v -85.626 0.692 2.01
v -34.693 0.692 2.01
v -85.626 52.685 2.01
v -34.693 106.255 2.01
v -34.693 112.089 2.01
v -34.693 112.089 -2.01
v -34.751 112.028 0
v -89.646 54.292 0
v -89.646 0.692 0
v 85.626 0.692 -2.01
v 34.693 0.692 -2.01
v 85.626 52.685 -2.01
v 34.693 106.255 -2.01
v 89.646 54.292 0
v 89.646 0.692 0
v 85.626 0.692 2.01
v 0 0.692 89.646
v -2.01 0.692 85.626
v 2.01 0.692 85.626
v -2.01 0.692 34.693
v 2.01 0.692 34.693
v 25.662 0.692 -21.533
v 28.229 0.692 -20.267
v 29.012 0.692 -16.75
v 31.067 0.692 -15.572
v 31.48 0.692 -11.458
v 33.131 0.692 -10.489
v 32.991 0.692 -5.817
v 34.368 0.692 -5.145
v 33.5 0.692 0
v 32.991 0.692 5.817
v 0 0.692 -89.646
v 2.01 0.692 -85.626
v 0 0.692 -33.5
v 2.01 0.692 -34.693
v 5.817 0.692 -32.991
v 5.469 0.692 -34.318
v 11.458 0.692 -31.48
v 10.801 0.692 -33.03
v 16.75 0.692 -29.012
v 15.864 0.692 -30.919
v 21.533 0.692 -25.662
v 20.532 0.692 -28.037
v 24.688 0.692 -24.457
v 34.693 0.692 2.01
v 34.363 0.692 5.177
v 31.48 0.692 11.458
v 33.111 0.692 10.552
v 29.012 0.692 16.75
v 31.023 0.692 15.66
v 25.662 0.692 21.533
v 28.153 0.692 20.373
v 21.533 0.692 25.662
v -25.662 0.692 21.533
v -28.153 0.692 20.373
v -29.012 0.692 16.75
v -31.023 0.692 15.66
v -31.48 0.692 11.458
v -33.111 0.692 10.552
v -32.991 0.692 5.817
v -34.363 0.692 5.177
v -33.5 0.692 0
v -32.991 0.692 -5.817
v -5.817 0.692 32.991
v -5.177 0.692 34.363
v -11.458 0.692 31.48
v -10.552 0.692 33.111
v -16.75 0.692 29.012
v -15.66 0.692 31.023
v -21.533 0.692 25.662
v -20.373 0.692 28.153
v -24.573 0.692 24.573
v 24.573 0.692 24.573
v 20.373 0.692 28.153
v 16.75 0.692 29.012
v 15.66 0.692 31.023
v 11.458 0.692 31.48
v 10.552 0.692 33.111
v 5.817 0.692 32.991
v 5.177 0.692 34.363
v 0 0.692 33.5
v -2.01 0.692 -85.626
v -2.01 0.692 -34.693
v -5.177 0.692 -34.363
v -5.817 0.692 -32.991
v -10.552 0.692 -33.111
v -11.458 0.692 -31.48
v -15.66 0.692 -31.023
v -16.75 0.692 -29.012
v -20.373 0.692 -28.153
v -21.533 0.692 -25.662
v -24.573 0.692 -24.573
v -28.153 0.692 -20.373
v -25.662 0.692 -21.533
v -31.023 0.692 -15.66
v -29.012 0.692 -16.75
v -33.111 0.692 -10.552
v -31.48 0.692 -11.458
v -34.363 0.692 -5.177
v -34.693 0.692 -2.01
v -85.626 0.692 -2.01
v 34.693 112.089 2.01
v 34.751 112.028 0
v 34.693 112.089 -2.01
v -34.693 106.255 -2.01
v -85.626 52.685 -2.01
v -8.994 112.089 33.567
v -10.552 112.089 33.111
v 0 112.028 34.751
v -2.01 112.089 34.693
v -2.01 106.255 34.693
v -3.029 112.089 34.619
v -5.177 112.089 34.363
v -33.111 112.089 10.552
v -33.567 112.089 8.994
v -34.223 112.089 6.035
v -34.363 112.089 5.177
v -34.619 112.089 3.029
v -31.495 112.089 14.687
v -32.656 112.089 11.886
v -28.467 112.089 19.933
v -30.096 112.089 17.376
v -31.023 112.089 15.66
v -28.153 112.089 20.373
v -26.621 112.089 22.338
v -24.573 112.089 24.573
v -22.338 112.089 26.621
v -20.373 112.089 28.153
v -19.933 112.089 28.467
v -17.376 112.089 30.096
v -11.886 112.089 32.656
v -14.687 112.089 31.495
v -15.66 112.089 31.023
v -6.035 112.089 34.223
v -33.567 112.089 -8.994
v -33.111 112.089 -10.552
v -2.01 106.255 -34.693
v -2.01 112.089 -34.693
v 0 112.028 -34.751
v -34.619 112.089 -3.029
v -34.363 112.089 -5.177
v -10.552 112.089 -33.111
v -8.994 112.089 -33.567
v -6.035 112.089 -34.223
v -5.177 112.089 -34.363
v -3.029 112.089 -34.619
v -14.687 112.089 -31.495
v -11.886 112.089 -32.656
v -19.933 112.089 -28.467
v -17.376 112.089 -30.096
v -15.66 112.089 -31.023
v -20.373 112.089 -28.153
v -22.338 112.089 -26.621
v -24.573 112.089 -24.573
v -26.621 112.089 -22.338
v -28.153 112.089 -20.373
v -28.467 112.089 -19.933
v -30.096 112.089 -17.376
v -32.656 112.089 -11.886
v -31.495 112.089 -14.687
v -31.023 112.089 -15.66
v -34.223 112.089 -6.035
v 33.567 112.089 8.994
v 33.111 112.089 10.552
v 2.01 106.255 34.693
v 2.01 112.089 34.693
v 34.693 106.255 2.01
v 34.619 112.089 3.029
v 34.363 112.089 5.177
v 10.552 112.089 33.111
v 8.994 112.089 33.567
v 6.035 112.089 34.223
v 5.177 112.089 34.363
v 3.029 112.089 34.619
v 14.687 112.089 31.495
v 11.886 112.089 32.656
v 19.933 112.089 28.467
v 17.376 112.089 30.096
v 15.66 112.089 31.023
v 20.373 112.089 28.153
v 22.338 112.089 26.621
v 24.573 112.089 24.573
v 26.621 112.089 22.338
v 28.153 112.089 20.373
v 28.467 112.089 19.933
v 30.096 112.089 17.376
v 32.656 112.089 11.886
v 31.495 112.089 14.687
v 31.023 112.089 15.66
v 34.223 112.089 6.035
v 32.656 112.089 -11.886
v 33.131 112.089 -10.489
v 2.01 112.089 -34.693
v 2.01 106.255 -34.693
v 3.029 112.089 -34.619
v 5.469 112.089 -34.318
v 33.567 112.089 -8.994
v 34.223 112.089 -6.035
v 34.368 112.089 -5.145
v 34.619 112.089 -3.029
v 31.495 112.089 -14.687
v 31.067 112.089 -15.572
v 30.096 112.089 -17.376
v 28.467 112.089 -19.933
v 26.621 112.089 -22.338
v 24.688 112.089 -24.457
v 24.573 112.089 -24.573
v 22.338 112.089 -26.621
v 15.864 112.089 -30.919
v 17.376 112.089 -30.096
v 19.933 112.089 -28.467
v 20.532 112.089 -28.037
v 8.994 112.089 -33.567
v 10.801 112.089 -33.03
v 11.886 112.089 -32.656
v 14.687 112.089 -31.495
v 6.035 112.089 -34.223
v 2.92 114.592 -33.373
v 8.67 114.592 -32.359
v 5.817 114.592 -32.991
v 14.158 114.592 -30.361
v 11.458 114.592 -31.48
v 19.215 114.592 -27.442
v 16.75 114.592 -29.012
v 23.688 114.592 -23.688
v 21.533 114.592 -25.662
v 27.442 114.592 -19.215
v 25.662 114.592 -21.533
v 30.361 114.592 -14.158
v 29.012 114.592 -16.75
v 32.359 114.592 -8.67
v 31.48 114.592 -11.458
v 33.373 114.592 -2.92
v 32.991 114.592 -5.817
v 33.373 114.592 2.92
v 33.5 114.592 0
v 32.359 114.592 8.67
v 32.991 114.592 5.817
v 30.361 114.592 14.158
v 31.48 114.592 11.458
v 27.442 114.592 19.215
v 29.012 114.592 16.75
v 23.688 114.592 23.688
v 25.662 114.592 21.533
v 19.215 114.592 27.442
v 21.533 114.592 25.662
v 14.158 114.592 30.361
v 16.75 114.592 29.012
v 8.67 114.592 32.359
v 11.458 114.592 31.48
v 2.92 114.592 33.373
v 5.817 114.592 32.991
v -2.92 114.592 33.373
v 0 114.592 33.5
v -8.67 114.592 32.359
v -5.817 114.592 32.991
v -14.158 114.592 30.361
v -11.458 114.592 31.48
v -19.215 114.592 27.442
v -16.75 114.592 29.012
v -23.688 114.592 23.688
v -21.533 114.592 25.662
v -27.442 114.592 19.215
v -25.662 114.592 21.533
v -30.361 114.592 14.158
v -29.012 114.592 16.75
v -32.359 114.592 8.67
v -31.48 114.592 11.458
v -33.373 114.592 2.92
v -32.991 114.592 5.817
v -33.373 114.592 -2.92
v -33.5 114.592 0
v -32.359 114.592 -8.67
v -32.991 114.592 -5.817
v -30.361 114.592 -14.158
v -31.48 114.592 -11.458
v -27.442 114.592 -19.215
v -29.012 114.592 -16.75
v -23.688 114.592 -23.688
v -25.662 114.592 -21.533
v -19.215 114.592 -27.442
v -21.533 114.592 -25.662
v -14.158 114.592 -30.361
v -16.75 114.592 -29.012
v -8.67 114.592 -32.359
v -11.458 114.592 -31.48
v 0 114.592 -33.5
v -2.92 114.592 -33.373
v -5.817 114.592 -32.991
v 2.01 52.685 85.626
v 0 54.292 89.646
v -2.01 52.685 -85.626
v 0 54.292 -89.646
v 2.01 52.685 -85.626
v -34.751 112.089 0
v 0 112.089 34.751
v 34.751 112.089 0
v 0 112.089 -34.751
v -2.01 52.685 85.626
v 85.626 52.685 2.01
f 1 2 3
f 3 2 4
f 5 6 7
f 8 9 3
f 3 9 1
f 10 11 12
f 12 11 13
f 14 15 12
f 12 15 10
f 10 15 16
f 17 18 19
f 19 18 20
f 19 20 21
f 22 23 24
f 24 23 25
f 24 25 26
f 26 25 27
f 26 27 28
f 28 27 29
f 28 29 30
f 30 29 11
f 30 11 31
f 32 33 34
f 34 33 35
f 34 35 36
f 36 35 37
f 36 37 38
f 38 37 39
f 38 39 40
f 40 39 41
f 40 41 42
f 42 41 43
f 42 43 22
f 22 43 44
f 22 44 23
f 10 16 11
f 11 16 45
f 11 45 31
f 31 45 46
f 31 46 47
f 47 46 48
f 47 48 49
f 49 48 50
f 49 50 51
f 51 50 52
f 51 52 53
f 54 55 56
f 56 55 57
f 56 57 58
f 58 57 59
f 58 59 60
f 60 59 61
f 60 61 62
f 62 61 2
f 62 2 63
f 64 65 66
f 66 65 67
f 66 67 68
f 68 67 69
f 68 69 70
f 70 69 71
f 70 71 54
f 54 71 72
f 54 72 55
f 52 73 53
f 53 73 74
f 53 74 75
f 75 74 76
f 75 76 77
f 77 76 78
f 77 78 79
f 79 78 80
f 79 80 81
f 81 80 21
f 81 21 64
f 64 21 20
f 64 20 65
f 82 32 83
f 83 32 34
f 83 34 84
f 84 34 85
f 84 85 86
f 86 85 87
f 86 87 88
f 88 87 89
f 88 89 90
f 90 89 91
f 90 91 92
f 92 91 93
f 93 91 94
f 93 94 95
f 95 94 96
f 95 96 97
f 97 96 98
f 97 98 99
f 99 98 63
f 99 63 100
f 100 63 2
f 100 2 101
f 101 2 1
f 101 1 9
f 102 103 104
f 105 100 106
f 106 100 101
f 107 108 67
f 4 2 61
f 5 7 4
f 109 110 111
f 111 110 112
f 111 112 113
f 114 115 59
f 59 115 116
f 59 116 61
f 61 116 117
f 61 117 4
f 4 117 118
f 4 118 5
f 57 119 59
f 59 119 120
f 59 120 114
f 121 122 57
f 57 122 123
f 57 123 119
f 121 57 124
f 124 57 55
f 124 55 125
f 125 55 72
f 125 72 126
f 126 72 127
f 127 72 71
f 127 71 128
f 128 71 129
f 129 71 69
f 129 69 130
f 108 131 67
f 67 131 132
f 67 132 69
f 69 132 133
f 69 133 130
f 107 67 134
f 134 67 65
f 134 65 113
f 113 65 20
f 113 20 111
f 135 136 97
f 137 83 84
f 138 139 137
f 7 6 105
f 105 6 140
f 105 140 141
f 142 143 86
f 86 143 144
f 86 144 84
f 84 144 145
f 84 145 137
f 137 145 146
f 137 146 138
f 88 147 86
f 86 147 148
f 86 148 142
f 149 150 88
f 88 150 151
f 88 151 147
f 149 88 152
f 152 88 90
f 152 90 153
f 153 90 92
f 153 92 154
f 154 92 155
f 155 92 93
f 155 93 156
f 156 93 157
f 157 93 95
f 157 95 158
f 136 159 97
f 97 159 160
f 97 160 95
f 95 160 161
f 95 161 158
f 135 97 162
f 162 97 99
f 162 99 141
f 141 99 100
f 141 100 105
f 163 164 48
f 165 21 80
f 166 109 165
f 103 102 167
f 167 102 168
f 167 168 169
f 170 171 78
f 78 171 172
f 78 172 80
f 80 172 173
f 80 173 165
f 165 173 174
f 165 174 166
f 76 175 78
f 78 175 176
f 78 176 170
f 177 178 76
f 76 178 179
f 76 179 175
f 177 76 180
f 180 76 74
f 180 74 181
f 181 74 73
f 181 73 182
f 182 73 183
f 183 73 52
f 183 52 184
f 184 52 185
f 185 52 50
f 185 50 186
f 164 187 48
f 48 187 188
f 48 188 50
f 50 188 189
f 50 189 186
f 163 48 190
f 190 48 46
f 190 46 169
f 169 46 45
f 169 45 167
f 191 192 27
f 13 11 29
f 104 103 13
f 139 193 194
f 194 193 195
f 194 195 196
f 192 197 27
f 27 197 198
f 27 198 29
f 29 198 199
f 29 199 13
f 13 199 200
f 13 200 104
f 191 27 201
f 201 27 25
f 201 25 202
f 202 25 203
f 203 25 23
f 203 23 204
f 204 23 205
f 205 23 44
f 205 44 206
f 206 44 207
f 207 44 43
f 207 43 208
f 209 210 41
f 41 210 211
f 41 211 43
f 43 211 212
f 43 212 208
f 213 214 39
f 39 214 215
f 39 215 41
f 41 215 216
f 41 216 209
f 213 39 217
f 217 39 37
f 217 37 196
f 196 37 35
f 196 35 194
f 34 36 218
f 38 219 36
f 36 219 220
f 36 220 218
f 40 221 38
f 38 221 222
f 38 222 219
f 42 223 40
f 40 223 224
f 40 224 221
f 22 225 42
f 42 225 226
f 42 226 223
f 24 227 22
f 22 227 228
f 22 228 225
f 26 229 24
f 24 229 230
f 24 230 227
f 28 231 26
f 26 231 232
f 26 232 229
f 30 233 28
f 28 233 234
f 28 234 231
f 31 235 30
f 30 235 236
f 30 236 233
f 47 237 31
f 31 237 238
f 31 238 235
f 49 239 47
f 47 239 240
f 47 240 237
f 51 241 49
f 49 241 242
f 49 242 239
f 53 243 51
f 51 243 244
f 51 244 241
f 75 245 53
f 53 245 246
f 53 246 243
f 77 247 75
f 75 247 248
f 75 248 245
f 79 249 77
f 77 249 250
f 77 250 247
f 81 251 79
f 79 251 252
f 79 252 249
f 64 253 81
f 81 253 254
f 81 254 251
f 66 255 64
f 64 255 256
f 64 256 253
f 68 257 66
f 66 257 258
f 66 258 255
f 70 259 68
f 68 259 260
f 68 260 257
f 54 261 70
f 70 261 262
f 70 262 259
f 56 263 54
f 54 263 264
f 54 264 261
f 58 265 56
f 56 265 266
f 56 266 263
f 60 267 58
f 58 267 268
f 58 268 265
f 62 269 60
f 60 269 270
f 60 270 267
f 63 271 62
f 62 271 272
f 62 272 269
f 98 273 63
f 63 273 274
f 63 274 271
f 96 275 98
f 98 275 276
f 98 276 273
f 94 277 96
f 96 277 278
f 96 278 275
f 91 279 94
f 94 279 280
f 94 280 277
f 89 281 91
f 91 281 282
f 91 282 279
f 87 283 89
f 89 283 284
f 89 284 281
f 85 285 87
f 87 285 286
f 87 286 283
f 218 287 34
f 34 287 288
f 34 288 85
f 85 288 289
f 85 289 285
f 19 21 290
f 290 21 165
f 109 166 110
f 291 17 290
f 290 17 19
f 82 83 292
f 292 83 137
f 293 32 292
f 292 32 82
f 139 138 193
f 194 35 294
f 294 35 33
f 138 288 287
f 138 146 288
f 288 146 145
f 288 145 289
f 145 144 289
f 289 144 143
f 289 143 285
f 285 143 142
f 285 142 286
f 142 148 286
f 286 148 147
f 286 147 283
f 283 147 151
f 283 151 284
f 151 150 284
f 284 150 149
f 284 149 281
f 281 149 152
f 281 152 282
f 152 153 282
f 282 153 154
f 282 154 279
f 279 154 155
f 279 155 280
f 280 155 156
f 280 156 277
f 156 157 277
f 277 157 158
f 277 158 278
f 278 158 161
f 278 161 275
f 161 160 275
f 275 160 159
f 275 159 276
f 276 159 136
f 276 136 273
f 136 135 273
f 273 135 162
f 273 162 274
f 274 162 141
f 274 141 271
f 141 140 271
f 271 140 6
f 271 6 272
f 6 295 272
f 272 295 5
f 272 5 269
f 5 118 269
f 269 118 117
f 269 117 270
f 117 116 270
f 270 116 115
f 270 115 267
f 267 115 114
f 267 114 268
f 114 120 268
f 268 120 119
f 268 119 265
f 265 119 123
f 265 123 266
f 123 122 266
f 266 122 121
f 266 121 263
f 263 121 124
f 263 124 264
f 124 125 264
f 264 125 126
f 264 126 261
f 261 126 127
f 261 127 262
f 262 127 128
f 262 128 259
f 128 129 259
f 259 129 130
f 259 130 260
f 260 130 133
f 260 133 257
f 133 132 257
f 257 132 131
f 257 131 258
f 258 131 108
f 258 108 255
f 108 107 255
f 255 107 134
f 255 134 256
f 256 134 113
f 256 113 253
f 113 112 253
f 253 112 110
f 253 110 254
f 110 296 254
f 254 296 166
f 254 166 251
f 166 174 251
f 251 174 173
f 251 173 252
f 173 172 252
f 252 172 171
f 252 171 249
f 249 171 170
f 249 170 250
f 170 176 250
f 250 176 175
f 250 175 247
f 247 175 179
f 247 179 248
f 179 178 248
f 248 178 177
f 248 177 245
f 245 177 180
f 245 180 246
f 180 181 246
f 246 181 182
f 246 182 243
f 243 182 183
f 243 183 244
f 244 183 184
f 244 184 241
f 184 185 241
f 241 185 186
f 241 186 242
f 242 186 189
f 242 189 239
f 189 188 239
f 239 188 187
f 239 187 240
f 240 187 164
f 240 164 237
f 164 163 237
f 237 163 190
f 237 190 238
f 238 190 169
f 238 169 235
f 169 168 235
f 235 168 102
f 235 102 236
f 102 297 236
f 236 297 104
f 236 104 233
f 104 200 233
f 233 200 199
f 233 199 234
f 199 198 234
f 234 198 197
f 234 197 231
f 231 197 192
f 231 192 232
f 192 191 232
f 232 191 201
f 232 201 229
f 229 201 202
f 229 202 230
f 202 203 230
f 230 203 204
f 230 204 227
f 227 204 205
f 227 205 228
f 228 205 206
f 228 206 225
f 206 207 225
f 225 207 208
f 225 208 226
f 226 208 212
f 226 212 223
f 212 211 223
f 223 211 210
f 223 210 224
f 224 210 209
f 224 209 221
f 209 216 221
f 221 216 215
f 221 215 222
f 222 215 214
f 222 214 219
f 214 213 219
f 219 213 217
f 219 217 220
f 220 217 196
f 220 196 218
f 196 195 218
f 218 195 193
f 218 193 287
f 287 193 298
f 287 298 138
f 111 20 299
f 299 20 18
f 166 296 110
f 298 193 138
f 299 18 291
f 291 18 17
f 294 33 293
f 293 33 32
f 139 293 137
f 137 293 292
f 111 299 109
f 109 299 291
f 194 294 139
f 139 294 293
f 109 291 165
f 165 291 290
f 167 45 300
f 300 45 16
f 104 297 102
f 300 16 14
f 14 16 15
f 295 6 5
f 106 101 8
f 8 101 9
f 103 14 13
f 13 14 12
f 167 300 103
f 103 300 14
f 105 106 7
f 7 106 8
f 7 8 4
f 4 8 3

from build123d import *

# Parameters (mm, degrees)
SKETCH1_R                                     = 35.27
SKETCH1_R_2                                   = 34
BOSS_EXTRUDE1_DEPTH                           = 115.6
SKETCH3_W                                     = 4.08
SKETCH3_H                                     = 113.06
BOSS_EXTRUDE2_DEPTH                           = 90.984
CUT_EXTRUDE1_DEPTH                            = 152.767863384
CUT_EXTRUDE4_DEPTH                            = 152.279281979
MIRROR4_AT_THE_SECOND_PLANE_COPY_1_DEPTH      = 152.279281979
CUT_EXTRUDE5_REACH                            = 175.905
CUT_EXTRUDE5_END_RADIUS                       = 35.27
MIRROR5_AT_THE_SECOND_PLANE_COPY_1_REACH      = 175.905
MIRROR5_AT_THE_SECOND_PLANE_COPY_1_END_RADIUS = 35.27
SKETCH12_W                                    = 4.08
SKETCH12_H                                    = 113.06
BOSS_EXTRUDE3_DEPTH                           = 90.984
CUT_EXTRUDE6_DEPTH                            = 175.054338734
CUT_EXTRUDE7_DEPTH                            = 173.972646716
MIRROR6_START                                 = -1
MIRROR6_DEPTH                                 = 114.06
MIRROR6_START_2                               = -2.04
MIRROR6_2_DEPTH                               = 4.08
MIRROR6_START_3                               = 40.689281773
MIRROR6_3_OUTLINE_W                           = 8
MIRROR6_3_OUTLINE_H                           = 61
MIRROR6_3_DEPTH                               = 3.310718227
CUT_EXTRUDE8_REACH                            = 195.073
CUT_EXTRUDE8_END_RADIUS                       = 35.27
MIRROR7_AT_THE_SECOND_PLANE_COPY_1_REACH      = 195.073
MIRROR7_AT_THE_SECOND_PLANE_COPY_1_END_RADIUS = 35.27
CUT_EXTRUDE9_DEPTH                            = 173.972646716
CUT_EXTRUDE9_DEPTH_BACK                       = 173.972646716
SKETCH17_R                                    = 34
SCALE2_SCALE                                  = 0.985294118


with BuildPart() as part:
    # Sketch1 → Boss-Extrude1 (new body)
    with BuildSketch(Plane(origin=(0, 0, 0), x_dir=(1, 0, 0), z_dir=(0, 1, 0))):
        with Locations(Location((0, 0, 0), (0, 0, 270))):
            Circle(SKETCH1_R)
        with Locations(Location((0, 0, 0), (0, 0, 270))):
            Circle(SKETCH1_R_2, mode=Mode.SUBTRACT)
    extrude(amount=BOSS_EXTRUDE1_DEPTH)

    # Sketch2 → Cut-Revolve3 (revolve, cut)
    with BuildSketch(Plane(origin=(0, 0, 0), x_dir=(0, 0, -1), z_dir=(1, 0, 0))):
        Polygon((-35.27, 113.06), (-35.27, 115.6), (-34, 115.6), align=None)
    revolve(axis=Axis((0, 115.6, 0), (0, -1, 0)), mode=Mode.SUBTRACT)

    # Sketch3 → Boss-Extrude2 (add, symmetric)
    with BuildSketch(Plane.XY):
        with Locations((0, 56.53)):
            Rectangle(SKETCH3_W, SKETCH3_H)
    extrude(amount=BOSS_EXTRUDE2_DEPTH, both=True)

    # Sketch4 → Cut-Extrude1 (cut, symmetric)
    with BuildSketch(Plane.ZY.offset(2.04)):
        Polygon((35.210954261, 113.06), (90.984, 54.4), (90.984, 113.06), align=None)
    cut_extrude1 = extrude(amount=CUT_EXTRUDE1_DEPTH, both=True, mode=Mode.SUBTRACT)

    # Mirror3: Cut-Extrude1 across plane
    add(cut_extrude1.mirror(Plane.XY), mode=Mode.SUBTRACT)

    # Sketch7 → Cut-Extrude4 (cut, symmetric)
    with BuildSketch(Plane.XZ):
        Polygon((0, 90.984), (-2.04, 86.904), (-2.04, 90.984), align=None)
    cut_extrude4 = extrude(amount=CUT_EXTRUDE4_DEPTH, both=True, mode=Mode.SUBTRACT)

    # Mirror4: Cut-Extrude4 across plane
    add(cut_extrude4.mirror(Plane(origin=(0, 0, 0), x_dir=(0, 0, 1), z_dir=(1, 0, 0))), mode=Mode.SUBTRACT)

    # Mirror4 at the second plane: Cut-Extrude4 across plane
    add(cut_extrude4.mirror(Plane.XY), mode=Mode.SUBTRACT)

    # Mirror4 at the second plane copy 1 sketc → Mirror4 at the second plane copy 1 (cut, symmetric)
    with BuildSketch(Plane(origin=(0, 0, 0), x_dir=(-1, 0, 0), z_dir=(0, -1, 0))):
        Polygon((0, 90.984), (-2.04, 86.904), (-2.04, 90.984), align=None)
    extrude(amount=MIRROR4_AT_THE_SECOND_PLANE_COPY_1_DEPTH, both=True, mode=Mode.SUBTRACT)

    # Cut-Extrude5: up to this cylinder (the profile starts outside it)
    cut_extrude5_end = Plane(origin=(0, 53.462894, 0), z_dir=(0, -1, 0)) * Cylinder(CUT_EXTRUDE5_END_RADIUS, 423.35, mode=Mode.PRIVATE)
    # Sketch11 → Cut-Extrude5 (cut, up to the surface)
    with BuildSketch(Plane(origin=(0, -16.862580362, -16.032687791), x_dir=(1, 0, 0), z_dir=(0, 0.7247153095275539, 0.6890484163949453)), mode=Mode.PRIVATE) as cut_extrude5_sk1:
        Polygon((0, 103.421731574), (-2.04, 103.421731574), (-2.04, 99.341731574), align=None)
    cut_extrude5_tool1 = extrude(cut_extrude5_sk1.sketch, amount=CUT_EXTRUDE5_REACH, mode=Mode.PRIVATE) - cut_extrude5_end
    cut_extrude5 = cut_extrude5_tool1.solids().sort_by_distance((-1.36, 53.462894, -89.998387))[0]
    add(cut_extrude5, mode=Mode.SUBTRACT)

    # Mirror5: Cut-Extrude5 across plane
    add(cut_extrude5.mirror(Plane(origin=(0, 0, 0), x_dir=(0, 0, 1), z_dir=(1, 0, 0))), mode=Mode.SUBTRACT)

    # Mirror5 at the second plane: Cut-Extrude5 across plane
    add(cut_extrude5.mirror(Plane.XY), mode=Mode.SUBTRACT)

    # Mirror5 at the second plane copy 1: up to this cylinder (the profile starts outside it)
    mirror5_at_the_second_plane_copy_1_end = Plane(origin=(0, 53.462894, 0), z_dir=(0, -1, 0)) * Cylinder(MIRROR5_AT_THE_SECOND_PLANE_COPY_1_END_RADIUS, 423.35, mode=Mode.PRIVATE)
    # Mirror5 at the second plane copy 1 sketc → Mirror5 at the second plane copy 1 (cut, up to the surface)
    with BuildSketch(Plane(origin=(0, -16.862580362, 16.032687791), x_dir=(-1, 0, 0), z_dir=(0, 0.7247153095275539, -0.6890484163949453)), mode=Mode.PRIVATE) as mirror5_at_the_second_plane_copy_1_sk1:
        Polygon((0, 103.421731574), (-2.04, 103.421731574), (-2.04, 99.341731574), align=None)
    mirror5_at_the_second_plane_copy_1_tool1 = extrude(mirror5_at_the_second_plane_copy_1_sk1.sketch, amount=MIRROR5_AT_THE_SECOND_PLANE_COPY_1_REACH, mode=Mode.PRIVATE) - mirror5_at_the_second_plane_copy_1_end
    add(mirror5_at_the_second_plane_copy_1_tool1.solids().sort_by_distance((-1.36, 53.462894, -89.998387))[0], mode=Mode.SUBTRACT)

    # Sketch12 → Boss-Extrude3 (add, symmetric)
    with BuildSketch(Plane(origin=(0, 0, 0), x_dir=(0, 0, -1), z_dir=(1, 0, 0))):
        with Locations((0, 56.53)):
            Rectangle(SKETCH12_W, SKETCH12_H)
    extrude(amount=BOSS_EXTRUDE3_DEPTH, both=True)

    # Sketch13 → Cut-Extrude6 (cut, through all)
    with BuildSketch(Plane.XY.offset(2.04)):
        Polygon((35.210954261, 113.06), (90.984, 113.06), (90.984, 54.4), align=None)
    extrude(amount=-CUT_EXTRUDE6_DEPTH, mode=Mode.SUBTRACT)

    # Sketch14 → Cut-Extrude7 (cut, through all)
    with BuildSketch(Plane.XZ):
        Polygon((90.984, 0), (90.984, 2.04), (86.904, 2.04), align=None)
    extrude(amount=-CUT_EXTRUDE7_DEPTH, mode=Mode.SUBTRACT)

    # Mirror6: read off the stored shape, not the designer's step
    # Mirror6 outline → Mirror6 (cut)
    with BuildSketch(Plane(origin=(0, 0, 0), x_dir=(1, 0, 0), z_dir=(0, 1, 0)).offset(MIRROR6_START)):
        Polygon((-90.984, 2.04), (-90.984, 0), (-86.904, 2.04), align=None)
        Polygon((-86.904, -2.04), (-90.984, 0), (-90.984, -2.04), align=None)
    extrude(amount=MIRROR6_DEPTH, mode=Mode.SUBTRACT)

    # Mirror6 2 outline → Mirror6 2 (cut)
    with BuildSketch(Plane.XY.offset(MIRROR6_START_2)):
        Polygon((-90.984, 54.4), (-35.210954261, 113.06), (-92, 113.06), (-92, 53.331409264), align=None)
    extrude(amount=MIRROR6_2_DEPTH, mode=Mode.SUBTRACT)

    # Mirror6 3 outline → Mirror6 3 (cut)
    with BuildSketch(Plane(origin=(0, 0, 0), x_dir=(0.8944271909999159, 0, 0.44721359549995804), z_dir=(0.447213595499958, 0, -0.894427190999916)).offset(MIRROR6_START_3)):
        with Locations((79, -29.5)):
            Rectangle(MIRROR6_3_OUTLINE_W, MIRROR6_3_OUTLINE_H)
    extrude(amount=MIRROR6_3_DEPTH, mode=Mode.SUBTRACT)

    # Cut-Extrude8: up to this cylinder (the profile starts outside it)
    cut_extrude8_end = Plane(origin=(0, 53.462894, 0), z_dir=(0, -1, 0)) * Cylinder(CUT_EXTRUDE8_END_RADIUS, 461.686, mode=Mode.PRIVATE)
    # Sketch15 → Cut-Extrude8 (cut, up to the surface)
    with BuildSketch(Plane(origin=(16.032687791, -16.862580362, 0), x_dir=(0.7247153095275543, 0.6890484163949449, 0), z_dir=(-0.6890484163949449, 0.7247153095275543, 0)), mode=Mode.PRIVATE) as cut_extrude8_sk1:
        Polygon((103.421731574, 0), (103.421731574, 2.04), (99.341731574, 2.04), align=None)
    cut_extrude8_tool1 = extrude(cut_extrude8_sk1.sketch, amount=CUT_EXTRUDE8_REACH, mode=Mode.PRIVATE) - cut_extrude8_end
    cut_extrude8 = cut_extrude8_tool1.solids().sort_by_distance((89.998387, 53.462894, -1.36))[0]
    add(cut_extrude8, mode=Mode.SUBTRACT)

    # Mirror7: Cut-Extrude8 across plane
    add(cut_extrude8.mirror(Plane(origin=(0, 0, 0), x_dir=(0, 0, 1), z_dir=(1, 0, 0))), mode=Mode.SUBTRACT)

    # Mirror7 at the second plane: Cut-Extrude8 across plane
    add(cut_extrude8.mirror(Plane.XY), mode=Mode.SUBTRACT)

    # Mirror7 at the second plane copy 1: up to this cylinder (the profile starts outside it)
    mirror7_at_the_second_plane_copy_1_end = Plane(origin=(0, 53.462894, 0), z_dir=(0, -1, 0)) * Cylinder(MIRROR7_AT_THE_SECOND_PLANE_COPY_1_END_RADIUS, 461.686, mode=Mode.PRIVATE)
    # Mirror7 at the second plane copy 1 sketc → Mirror7 at the second plane copy 1 (cut, up to the surface)
    with BuildSketch(Plane(origin=(-16.032687791, -16.862580362, 0), x_dir=(-0.7247153095275543, 0.6890484163949449, 0), z_dir=(0.6890484163949449, 0.7247153095275543, 0)), mode=Mode.PRIVATE) as mirror7_at_the_second_plane_copy_1_sk1:
        Polygon((103.421731574, 0), (103.421731574, 2.04), (99.341731574, 2.04), align=None)
    mirror7_at_the_second_plane_copy_1_tool1 = extrude(mirror7_at_the_second_plane_copy_1_sk1.sketch, amount=MIRROR7_AT_THE_SECOND_PLANE_COPY_1_REACH, mode=Mode.PRIVATE) - mirror7_at_the_second_plane_copy_1_end
    add(mirror7_at_the_second_plane_copy_1_tool1.solids().sort_by_distance((89.998387, 53.462894, -1.36))[0], mode=Mode.SUBTRACT)

    # Sketch17 → Cut-Extrude9 (cut, two sides: drawn at the far end of the back side and taken through both)
    with BuildSketch(Plane.XZ.offset(-CUT_EXTRUDE9_DEPTH_BACK)):
        with Locations(Location((0, 0, 0), (0, 0, 90))):
            Circle(SKETCH17_R)
    extrude(amount=CUT_EXTRUDE9_DEPTH + CUT_EXTRUDE9_DEPTH_BACK, mode=Mode.SUBTRACT)


with BuildPart() as part_1:
    # Scale2: scaled about (0, 47.022865963, 0)
    add(part.part.scale(SCALE2_SCALE).moved(Location((0, 0.691512735, 0))))


solid = part_1.part
